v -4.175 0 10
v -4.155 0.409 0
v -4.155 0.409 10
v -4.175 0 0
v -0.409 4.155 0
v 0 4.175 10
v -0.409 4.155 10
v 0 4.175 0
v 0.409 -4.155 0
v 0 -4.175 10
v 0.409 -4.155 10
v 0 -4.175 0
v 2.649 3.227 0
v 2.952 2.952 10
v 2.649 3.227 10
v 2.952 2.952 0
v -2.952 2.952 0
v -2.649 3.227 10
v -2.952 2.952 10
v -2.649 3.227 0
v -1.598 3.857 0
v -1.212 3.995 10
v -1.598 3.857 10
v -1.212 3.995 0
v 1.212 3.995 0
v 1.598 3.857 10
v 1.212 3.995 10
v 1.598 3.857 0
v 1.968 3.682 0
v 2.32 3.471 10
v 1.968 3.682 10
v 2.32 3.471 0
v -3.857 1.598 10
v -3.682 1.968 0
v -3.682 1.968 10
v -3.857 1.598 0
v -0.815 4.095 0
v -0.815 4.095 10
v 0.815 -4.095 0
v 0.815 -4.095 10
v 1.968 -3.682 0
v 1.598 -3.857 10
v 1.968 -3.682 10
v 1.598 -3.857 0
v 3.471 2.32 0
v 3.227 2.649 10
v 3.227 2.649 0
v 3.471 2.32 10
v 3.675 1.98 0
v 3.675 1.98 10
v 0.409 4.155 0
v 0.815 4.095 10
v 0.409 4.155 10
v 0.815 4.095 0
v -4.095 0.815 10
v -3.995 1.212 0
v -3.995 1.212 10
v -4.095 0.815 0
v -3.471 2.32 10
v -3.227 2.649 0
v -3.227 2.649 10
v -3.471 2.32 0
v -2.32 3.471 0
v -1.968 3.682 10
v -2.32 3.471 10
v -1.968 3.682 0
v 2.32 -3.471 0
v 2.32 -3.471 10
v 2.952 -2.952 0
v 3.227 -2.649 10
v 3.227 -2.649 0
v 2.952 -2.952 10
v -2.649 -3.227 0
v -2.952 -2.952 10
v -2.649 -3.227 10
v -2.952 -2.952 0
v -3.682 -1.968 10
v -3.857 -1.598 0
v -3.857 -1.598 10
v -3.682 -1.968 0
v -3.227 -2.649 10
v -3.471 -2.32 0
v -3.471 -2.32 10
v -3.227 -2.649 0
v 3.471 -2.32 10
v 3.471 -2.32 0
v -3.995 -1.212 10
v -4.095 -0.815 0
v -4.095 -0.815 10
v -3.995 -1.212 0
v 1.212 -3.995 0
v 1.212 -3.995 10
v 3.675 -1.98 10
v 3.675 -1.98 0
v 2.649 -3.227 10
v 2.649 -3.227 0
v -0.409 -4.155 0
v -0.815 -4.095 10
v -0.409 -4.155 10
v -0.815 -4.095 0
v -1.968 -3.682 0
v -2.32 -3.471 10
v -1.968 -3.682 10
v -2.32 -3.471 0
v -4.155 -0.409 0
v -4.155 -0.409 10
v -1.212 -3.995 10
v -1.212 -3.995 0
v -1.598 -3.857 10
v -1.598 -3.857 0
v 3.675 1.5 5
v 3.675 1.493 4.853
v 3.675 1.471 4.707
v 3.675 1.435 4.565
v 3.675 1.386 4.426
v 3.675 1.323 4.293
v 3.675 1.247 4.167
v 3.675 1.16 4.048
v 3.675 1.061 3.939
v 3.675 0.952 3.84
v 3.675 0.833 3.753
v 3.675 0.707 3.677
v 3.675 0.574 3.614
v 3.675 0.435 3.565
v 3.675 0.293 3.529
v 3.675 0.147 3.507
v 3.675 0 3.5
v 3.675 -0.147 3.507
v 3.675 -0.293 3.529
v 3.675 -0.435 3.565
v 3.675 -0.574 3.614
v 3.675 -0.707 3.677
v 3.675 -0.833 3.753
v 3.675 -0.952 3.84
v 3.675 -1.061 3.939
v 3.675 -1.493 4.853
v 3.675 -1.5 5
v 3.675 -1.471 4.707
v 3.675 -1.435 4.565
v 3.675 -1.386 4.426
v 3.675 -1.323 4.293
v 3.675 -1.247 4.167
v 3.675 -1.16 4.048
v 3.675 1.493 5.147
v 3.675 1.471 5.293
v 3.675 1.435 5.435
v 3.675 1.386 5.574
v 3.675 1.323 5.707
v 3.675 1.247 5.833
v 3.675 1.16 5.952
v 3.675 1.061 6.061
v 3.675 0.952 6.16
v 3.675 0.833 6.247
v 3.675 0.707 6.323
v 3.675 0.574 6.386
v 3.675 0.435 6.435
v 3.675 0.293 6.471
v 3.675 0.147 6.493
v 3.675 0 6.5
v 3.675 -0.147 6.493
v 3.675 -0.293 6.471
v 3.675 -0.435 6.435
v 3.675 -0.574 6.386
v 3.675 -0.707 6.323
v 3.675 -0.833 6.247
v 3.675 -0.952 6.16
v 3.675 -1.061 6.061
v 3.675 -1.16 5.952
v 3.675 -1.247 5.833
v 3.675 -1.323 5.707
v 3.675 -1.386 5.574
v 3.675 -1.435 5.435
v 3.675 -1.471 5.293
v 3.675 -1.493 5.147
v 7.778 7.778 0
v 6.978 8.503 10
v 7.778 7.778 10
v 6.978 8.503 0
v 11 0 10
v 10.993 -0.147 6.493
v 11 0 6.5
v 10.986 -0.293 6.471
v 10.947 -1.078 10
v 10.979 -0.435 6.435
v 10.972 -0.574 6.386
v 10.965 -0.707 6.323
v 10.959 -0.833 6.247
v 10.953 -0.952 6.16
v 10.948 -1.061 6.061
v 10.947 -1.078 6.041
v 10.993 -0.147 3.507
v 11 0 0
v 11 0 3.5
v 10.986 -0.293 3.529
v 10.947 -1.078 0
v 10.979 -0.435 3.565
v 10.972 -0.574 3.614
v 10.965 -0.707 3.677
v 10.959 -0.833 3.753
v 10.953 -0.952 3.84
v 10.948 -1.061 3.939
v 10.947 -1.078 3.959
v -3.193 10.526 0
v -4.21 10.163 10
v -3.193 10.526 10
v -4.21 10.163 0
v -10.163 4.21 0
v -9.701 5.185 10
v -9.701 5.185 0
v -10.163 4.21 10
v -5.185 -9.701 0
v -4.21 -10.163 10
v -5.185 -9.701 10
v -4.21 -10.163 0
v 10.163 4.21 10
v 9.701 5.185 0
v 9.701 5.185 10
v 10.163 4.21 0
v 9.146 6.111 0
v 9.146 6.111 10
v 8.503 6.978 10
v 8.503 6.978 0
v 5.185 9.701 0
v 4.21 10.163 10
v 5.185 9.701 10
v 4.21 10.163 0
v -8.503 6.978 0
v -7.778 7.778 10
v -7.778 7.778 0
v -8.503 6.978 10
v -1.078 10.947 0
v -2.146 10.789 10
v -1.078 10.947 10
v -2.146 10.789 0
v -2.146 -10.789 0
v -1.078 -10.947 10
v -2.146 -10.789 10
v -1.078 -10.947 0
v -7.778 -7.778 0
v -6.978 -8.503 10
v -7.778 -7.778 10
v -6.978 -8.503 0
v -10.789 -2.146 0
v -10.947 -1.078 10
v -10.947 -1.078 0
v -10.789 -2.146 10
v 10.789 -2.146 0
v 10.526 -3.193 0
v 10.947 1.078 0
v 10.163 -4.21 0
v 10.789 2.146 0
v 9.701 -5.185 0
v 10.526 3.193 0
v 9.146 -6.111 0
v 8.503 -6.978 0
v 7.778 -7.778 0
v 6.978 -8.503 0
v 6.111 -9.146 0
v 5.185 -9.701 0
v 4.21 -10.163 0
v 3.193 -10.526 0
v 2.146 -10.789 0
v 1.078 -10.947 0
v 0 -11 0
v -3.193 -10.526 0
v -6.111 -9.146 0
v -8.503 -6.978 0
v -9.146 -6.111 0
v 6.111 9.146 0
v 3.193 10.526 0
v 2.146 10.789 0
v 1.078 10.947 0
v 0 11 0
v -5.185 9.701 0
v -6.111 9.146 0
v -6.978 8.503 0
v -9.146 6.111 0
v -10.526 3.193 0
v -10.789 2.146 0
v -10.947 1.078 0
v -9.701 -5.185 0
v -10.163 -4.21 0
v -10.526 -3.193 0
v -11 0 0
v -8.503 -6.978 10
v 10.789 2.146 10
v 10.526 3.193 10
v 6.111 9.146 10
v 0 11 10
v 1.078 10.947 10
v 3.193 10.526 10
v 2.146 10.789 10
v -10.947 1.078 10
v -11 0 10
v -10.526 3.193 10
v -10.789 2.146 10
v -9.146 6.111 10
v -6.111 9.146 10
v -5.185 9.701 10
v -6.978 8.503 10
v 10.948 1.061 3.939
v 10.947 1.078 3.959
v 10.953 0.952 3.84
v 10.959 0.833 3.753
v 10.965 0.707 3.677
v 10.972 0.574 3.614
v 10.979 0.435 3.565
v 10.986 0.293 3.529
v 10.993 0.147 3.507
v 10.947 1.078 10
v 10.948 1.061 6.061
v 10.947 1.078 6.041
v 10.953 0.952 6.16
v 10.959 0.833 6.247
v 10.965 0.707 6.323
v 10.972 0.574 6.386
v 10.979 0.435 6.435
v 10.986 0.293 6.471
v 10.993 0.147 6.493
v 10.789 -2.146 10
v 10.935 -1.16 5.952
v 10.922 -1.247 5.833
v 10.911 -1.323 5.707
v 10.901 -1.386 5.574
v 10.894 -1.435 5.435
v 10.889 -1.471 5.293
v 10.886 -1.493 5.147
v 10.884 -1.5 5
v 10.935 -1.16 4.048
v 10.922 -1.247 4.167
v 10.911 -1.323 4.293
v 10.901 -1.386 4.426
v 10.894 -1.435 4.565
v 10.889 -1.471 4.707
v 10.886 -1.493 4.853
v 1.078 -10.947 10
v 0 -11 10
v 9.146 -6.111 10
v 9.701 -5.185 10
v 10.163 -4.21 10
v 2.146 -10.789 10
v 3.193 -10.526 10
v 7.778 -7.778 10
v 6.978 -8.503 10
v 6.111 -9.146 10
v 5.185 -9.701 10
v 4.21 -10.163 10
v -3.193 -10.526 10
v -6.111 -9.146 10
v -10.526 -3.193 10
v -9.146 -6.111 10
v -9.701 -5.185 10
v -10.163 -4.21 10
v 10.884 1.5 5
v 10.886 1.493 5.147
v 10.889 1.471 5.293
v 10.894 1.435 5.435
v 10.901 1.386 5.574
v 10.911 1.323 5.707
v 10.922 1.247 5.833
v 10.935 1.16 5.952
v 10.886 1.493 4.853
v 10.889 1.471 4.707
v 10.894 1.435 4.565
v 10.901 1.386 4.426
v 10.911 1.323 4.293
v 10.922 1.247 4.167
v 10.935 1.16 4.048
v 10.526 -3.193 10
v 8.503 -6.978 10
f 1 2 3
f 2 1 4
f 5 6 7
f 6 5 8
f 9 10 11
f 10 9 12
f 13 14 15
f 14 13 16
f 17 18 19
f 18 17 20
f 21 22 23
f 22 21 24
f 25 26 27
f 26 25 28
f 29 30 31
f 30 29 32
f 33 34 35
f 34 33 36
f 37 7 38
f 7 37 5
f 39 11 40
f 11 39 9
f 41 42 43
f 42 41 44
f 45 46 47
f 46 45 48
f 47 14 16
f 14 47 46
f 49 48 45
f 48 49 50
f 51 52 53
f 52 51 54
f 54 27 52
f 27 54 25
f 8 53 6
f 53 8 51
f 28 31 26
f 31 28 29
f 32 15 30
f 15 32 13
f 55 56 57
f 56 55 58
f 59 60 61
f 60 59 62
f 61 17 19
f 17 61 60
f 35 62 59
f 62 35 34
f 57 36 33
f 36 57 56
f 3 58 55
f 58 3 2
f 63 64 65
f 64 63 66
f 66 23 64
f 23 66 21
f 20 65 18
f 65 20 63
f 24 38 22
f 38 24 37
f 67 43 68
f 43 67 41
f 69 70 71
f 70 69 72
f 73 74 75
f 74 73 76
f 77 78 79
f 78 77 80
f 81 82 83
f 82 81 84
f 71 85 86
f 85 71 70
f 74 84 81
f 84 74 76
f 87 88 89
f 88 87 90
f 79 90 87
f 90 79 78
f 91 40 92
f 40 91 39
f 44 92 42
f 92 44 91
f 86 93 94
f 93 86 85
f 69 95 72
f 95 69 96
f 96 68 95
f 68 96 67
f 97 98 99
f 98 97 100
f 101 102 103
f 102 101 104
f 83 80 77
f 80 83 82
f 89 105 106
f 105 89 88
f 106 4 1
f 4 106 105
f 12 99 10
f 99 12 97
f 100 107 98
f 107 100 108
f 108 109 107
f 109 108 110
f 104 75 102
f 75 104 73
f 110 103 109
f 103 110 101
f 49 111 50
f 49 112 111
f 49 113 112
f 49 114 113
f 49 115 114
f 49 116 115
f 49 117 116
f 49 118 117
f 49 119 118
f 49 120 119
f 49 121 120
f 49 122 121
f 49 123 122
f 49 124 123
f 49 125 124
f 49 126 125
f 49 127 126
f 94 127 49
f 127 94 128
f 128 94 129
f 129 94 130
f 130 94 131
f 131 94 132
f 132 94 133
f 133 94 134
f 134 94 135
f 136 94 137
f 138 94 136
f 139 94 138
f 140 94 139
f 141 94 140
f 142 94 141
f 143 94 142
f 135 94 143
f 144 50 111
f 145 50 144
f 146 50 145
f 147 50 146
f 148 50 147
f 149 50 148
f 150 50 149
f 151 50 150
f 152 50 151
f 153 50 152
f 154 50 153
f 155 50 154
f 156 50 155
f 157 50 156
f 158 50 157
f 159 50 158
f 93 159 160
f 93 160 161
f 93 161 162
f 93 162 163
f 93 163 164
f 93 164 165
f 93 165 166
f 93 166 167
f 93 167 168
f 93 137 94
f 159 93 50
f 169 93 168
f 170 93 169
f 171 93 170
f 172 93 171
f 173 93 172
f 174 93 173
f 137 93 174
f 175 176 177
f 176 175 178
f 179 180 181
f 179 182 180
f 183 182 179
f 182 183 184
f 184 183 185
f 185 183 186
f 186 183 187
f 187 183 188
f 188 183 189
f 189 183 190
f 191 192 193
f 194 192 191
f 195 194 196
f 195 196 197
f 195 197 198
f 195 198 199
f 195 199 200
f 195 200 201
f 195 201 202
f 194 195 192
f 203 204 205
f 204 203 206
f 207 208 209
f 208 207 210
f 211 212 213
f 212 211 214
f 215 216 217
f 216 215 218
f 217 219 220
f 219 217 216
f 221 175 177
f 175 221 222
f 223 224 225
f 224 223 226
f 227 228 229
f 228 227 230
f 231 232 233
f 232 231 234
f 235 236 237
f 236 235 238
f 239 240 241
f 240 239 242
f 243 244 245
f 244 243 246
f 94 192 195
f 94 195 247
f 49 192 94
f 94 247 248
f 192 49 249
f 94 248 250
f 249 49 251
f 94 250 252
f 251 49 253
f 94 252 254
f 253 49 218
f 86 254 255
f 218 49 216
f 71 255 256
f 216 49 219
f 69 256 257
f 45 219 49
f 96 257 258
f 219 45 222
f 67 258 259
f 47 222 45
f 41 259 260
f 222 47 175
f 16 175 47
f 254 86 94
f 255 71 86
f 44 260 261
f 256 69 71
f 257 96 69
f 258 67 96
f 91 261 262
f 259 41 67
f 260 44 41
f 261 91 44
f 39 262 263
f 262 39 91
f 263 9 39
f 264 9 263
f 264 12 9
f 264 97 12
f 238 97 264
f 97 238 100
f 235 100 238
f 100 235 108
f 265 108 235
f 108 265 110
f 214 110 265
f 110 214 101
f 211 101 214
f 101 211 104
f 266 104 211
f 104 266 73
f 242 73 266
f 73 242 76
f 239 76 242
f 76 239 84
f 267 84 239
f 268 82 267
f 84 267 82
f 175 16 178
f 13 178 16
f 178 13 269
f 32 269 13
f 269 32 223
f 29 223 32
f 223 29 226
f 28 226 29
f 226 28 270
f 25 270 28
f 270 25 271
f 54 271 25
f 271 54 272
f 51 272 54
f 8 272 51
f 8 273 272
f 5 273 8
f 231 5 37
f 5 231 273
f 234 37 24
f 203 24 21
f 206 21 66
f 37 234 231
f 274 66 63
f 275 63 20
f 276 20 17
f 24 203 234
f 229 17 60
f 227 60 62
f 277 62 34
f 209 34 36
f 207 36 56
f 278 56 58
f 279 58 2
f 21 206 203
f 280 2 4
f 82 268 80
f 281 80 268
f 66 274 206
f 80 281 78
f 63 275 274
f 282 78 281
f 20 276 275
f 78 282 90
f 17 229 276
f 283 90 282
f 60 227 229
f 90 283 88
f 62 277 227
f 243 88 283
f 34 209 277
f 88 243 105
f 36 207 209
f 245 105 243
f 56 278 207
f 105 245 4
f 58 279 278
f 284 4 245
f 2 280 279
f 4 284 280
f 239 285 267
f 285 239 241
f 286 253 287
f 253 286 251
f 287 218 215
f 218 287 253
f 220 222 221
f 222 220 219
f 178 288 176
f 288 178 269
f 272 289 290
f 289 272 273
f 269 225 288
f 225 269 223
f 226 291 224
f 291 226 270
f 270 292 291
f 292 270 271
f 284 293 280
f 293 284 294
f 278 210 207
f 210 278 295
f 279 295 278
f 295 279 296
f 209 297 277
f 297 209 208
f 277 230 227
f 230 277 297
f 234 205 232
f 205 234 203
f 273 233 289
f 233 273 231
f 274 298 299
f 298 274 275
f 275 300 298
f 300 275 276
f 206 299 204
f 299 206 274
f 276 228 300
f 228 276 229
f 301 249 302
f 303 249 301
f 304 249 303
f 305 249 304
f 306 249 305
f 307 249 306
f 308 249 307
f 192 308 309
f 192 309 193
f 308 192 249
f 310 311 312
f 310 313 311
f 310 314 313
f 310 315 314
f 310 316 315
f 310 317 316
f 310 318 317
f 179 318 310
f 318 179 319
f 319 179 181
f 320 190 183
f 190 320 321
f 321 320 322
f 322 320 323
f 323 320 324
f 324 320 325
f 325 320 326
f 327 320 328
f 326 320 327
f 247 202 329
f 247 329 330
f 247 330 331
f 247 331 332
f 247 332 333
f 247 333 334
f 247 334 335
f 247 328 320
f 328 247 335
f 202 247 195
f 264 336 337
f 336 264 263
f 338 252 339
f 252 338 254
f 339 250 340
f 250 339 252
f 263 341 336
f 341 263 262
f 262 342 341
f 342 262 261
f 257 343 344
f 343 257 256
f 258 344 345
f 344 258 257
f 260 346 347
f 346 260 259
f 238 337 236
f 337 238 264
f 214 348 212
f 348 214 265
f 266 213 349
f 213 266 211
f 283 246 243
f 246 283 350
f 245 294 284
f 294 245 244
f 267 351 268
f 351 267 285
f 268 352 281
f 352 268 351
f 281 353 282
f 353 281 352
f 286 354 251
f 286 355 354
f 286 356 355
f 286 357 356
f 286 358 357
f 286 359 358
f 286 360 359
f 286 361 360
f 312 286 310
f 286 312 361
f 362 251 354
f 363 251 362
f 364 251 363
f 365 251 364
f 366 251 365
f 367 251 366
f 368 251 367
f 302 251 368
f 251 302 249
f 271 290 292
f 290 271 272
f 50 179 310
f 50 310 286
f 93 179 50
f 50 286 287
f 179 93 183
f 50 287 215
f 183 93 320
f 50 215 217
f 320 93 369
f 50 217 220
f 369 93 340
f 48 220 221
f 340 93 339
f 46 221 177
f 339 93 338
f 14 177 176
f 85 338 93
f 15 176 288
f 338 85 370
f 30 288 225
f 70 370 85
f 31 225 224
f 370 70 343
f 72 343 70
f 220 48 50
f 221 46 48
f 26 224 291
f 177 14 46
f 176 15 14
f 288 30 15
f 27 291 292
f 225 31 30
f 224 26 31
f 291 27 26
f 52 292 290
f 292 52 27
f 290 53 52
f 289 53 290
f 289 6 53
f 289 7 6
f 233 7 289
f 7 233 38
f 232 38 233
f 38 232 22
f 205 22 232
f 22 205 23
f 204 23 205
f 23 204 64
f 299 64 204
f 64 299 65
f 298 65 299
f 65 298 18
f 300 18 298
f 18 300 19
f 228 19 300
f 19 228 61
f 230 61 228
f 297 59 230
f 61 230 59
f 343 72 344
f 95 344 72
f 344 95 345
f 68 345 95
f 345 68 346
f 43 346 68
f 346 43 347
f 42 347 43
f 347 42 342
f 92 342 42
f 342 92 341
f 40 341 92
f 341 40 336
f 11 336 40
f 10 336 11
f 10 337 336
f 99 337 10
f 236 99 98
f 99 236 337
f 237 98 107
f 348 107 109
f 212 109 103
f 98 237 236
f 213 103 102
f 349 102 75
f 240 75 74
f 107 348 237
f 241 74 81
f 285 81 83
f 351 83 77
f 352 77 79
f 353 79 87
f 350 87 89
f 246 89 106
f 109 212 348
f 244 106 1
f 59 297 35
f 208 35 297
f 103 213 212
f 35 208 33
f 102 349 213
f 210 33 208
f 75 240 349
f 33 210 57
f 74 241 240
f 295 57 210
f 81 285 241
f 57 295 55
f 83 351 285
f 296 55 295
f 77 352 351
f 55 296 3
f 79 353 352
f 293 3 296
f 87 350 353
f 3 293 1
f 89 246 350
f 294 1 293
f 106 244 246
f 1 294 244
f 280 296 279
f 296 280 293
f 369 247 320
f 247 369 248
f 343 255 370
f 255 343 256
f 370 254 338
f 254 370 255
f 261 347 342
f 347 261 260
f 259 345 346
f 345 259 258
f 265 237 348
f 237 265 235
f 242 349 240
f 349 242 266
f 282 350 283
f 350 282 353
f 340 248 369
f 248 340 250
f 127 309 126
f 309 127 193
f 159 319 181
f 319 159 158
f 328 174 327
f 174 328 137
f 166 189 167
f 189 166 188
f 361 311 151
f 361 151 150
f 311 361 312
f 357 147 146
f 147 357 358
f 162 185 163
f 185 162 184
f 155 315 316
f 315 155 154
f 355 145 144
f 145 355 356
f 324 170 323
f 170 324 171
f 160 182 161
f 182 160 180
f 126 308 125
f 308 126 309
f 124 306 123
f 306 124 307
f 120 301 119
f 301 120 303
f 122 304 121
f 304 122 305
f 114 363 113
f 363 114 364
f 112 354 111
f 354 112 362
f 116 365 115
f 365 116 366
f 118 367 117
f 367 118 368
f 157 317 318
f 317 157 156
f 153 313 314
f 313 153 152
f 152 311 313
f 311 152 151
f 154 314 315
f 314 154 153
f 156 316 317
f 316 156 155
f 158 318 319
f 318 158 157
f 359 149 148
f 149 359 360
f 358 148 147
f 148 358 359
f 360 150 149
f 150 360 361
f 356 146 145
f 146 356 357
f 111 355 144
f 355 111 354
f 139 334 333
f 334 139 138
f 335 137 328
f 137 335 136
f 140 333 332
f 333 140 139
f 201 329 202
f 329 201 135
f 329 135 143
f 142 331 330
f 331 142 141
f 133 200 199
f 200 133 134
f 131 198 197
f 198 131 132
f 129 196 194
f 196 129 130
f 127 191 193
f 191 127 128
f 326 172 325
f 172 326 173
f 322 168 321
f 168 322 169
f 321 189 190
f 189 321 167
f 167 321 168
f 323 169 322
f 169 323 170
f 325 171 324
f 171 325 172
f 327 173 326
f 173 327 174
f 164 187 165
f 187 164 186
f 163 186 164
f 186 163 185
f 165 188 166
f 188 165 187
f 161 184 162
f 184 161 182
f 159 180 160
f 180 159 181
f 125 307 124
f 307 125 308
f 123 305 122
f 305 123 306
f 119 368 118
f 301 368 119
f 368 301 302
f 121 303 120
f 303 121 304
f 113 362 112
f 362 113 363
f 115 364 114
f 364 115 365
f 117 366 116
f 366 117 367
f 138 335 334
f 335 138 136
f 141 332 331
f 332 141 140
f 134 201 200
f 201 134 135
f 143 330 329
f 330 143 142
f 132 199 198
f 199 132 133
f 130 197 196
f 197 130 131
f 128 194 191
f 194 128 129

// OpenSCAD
// file: parameters.scad
// =============================================================================
// Gen-BT — nightly 2026-10-09 (physics_scorer, honest magpylib watts)
// The low-cogging 8-pole / 9-coil line (winding factor 0.945) moved to a larger R53 pole ring with 36–70 mm bobbins and a 13.5 mm build, the best 9-coil row in tonight's scans (Gen-BQ was R52 / 35–70 / 12.6). Smoother to spin by hand and quieter, but still well below 6 coils under the wire budget.
// Clocking 0 deg (magnets N facing S) + D-flat keyed bore + index notch + flip-symmetric hole map.
// Windable 2-piece bobbin; turns = physics_scorer turns_fit; copper only between flanges.
// Steel back-iron: 2× Ø140 × 4.76 mm (3/16") mild-steel discs (steel_backiron_disc.dxf); magnets sit ON the steel
// (through-pockets) -> score with --back-iron.
// =============================================================================
topology            = "dual_rotor";

// --- Wire / winding (physics_scorer winding-fit) -------------------------------
wire_awg            = 26;
wire_od             = 0.45;     // insulated OD mm (bare 0.405)
fill_realistic      = 0.65;     // insulated-wire area / window (DENSE layered wind with a jig; scorer cap 0.65)
turns               = 521;       // = physics_scorer turns_fit (do NOT raise)
coil_former_type    = "bobbin";
coil_core_inset     = 13.50;     // radial copper build: hub = copper boundary inset by this
wind_build_axial    = 0.0;      // nothing proud of the flanges
wind_build_radial   = 0.0;

// --- Bobbin (base + lid) ---------------------------------------------------------
coil_id_r           = 36.00;    // copper boundary sector
coil_od_r           = 70.00;
span_deg            = 34.75;    // = pitch - 2*asin((wall+0.85)/coil_id_r) -> >=1.2 mm stator web
former_web          = 9.45;     // copper height between flanges (TALL copper: steel keeps Bz up)
flange_t            = 0.80;     // >= 0.8 mm FDM wall rule (tall winds push on the flanges)
wall                = 0.80;     // flange lip beyond copper
former_bare_h       = former_web + 2 * flange_t;
coil_envelope_h     = former_bare_h + 2 * wind_build_axial;
tab_w               = 7.0;
tab_len             = 7.0;
tab_h               = former_bare_h / 2;
pin_d               = 1.9;      // 1.75 mm filament locating pin
coil_mount_r        = coil_od_r + 0.2 + 4.0;
lead_y              = 1.6;
lead_slot_w         = 0.9;
lead_groove_d       = 0.6;

// --- Gap -------------------------------------------------------------------------
run_clear           = 0.50;     // rotor face -> flange
gap_spacer_h        = run_clear + wind_build_axial;
m2m                 = coil_envelope_h + 2 * run_clear;   // rotor face to rotor face (= gap_sleeve length)

// --- Stator ----------------------------------------------------------------------
coil_stations       = 9;
bay_clear           = 0.25;
stator_thick        = former_bare_h;                        // bobbins flush both faces
stator_od           = 162.0;
shaft_clear_stator  = 14.0;     // stator is static; gap sleeve OD 12 spins inside

// --- Rotor(s) --------------------------------------------------------------------
magnet_Br           = 1.43;     // N52
magnet_d_large      = 20.0;
magnet_h_large      = 5.0;      // one O20x5 per pocket
magnet_h_small      = 5.0;      // one O5x5 per pocket
halbach_magnetisation = "diametric"; // O5x5 assist magnets MUST be DIAMETRICALLY magnetised (tangential)
rotor_b_same_axis   = true;     // same-index magnets share one axis: N faces S across the gap
large_pocket_d      = 20.3;
small_pocket_d      = 5.3;
pocket_h            = 5.00;     // THROUGH the carrier: magnet back face sits on the steel disc (FLUSH seat: carrier = magnet height, magnet face level with the rotor face)
large_n             = 8;
R_large             = 53.0;
R_small_inner       = 45.0;
R_small_mid         = 53.0;
R_small_outer       = 61.0;
small_r_list        = [R_small_inner, R_small_mid, R_small_outer];   // O5 pockets between poles
carrier_od          = 140.0;
carrier_thick       = pocket_h;
hub_h               = 12.0;     // > steel_t + insert: radial set-screw clears the steel
hub_od              = 24.0;     // slim hub so the M4 brace rods fit at R~18 inside the coil ring
hub_insert_d        = 4.0;      // M3 heat-set insert, radial, bears on the D-flat
rotor_b_offset_deg  = 0.0;      // CLOCKING: magnets directly opposite
shaft_key           = "dflat";
dflat_depth         = 0.5;      // 8 mm shaft with 0.5 mm flat (7.5 across flat)
index_notch_d       = 3.0;

// --- Steel back-iron (buyable laser-cut) -------------------------------------------
steel_t             = 4.76;      // mild steel thickness (image method ignores it; sized from steel_flux.py so the return path stays well below saturation)
steel_center_hole   = 26.0;     // slips over the rotor hub (OD 24)
steel_od            = carrier_od;   // steel disc OD = rotor carrier OD

// --- Modular MAX interface ----------------------------------------------------------
shaft_bore          = 8.35;
dflat_x             = 4.0 - dflat_depth + (shaft_bore - 8.0) / 2;
bearing_d           = 21.85;
bearing_h           = 7.2;
m3_clear            = 3.5;
bolt_r_inner        = 30.0;     // M3 steel-disc clamp bolts (inside the magnet ring)
bolt_n_inner        = 4;
bolt_inner_angles   = [0, 90, 180, 270];
bolt_r_outer        = 66.0;     // M3 steel-disc clamp bolts (outside the magnet ring)
bolt_outer_angles   = [45, 135, 225, 315];
flange_bolt_r       = 76.0;     // frame rods: OUTSIDE the rotor OD (rotors spin inside them)
flange_bolt_n       = 9;
flange_bolt_offset  = 20.00;    // between coil stations -> never cuts a lead groove/tab
brace_r             = 18.0;
brace_d             = 4.3;      // temporary M4 jack rods (assembly only)
brace_n             = 4;
brace_angles        = [45, 135, 225, 315];          // flip-symmetric

spacer_pad_od       = 14.0;
spacer_pad_id       = m3_clear;
endbell_od          = 162.0;
endbell_thick       = 8.0;
endbell_shaft_clear = 10.0;
collar_h            = 10.0;
standoff_od         = 9.0;
frame_standoff_h    = run_clear + carrier_thick + hub_h + collar_h + 2.0;
sleeve_od           = 12.0;
plate_max_mm        = 410;

$fn = 64;
// main file
// Gen-BT — shaft collar with D-flat bore (set screw bears on the flat); print x4
include <parameters.scad>;
$fn = 64;
// D-flat keyed bore: flat faces +X (angle 0 = magnet pocket 0 = index notch)
module dflat_bore(h) {
    intersection() {
        cylinder(d=shaft_bore, h=h);
        translate([-shaft_bore, -shaft_bore, 0]) cube([shaft_bore + dflat_x, 2*shaft_bore, h]);
    }
}

od = 22; h = collar_h; set_d = 3.0;
difference() {
    cylinder(d=od, h=h);
    translate([0, 0, -0.1]) dflat_bore(h + 0.2);
    translate([0, 0, h/2]) rotate([0, 90, 0]) cylinder(d=set_d, h=od);
}
